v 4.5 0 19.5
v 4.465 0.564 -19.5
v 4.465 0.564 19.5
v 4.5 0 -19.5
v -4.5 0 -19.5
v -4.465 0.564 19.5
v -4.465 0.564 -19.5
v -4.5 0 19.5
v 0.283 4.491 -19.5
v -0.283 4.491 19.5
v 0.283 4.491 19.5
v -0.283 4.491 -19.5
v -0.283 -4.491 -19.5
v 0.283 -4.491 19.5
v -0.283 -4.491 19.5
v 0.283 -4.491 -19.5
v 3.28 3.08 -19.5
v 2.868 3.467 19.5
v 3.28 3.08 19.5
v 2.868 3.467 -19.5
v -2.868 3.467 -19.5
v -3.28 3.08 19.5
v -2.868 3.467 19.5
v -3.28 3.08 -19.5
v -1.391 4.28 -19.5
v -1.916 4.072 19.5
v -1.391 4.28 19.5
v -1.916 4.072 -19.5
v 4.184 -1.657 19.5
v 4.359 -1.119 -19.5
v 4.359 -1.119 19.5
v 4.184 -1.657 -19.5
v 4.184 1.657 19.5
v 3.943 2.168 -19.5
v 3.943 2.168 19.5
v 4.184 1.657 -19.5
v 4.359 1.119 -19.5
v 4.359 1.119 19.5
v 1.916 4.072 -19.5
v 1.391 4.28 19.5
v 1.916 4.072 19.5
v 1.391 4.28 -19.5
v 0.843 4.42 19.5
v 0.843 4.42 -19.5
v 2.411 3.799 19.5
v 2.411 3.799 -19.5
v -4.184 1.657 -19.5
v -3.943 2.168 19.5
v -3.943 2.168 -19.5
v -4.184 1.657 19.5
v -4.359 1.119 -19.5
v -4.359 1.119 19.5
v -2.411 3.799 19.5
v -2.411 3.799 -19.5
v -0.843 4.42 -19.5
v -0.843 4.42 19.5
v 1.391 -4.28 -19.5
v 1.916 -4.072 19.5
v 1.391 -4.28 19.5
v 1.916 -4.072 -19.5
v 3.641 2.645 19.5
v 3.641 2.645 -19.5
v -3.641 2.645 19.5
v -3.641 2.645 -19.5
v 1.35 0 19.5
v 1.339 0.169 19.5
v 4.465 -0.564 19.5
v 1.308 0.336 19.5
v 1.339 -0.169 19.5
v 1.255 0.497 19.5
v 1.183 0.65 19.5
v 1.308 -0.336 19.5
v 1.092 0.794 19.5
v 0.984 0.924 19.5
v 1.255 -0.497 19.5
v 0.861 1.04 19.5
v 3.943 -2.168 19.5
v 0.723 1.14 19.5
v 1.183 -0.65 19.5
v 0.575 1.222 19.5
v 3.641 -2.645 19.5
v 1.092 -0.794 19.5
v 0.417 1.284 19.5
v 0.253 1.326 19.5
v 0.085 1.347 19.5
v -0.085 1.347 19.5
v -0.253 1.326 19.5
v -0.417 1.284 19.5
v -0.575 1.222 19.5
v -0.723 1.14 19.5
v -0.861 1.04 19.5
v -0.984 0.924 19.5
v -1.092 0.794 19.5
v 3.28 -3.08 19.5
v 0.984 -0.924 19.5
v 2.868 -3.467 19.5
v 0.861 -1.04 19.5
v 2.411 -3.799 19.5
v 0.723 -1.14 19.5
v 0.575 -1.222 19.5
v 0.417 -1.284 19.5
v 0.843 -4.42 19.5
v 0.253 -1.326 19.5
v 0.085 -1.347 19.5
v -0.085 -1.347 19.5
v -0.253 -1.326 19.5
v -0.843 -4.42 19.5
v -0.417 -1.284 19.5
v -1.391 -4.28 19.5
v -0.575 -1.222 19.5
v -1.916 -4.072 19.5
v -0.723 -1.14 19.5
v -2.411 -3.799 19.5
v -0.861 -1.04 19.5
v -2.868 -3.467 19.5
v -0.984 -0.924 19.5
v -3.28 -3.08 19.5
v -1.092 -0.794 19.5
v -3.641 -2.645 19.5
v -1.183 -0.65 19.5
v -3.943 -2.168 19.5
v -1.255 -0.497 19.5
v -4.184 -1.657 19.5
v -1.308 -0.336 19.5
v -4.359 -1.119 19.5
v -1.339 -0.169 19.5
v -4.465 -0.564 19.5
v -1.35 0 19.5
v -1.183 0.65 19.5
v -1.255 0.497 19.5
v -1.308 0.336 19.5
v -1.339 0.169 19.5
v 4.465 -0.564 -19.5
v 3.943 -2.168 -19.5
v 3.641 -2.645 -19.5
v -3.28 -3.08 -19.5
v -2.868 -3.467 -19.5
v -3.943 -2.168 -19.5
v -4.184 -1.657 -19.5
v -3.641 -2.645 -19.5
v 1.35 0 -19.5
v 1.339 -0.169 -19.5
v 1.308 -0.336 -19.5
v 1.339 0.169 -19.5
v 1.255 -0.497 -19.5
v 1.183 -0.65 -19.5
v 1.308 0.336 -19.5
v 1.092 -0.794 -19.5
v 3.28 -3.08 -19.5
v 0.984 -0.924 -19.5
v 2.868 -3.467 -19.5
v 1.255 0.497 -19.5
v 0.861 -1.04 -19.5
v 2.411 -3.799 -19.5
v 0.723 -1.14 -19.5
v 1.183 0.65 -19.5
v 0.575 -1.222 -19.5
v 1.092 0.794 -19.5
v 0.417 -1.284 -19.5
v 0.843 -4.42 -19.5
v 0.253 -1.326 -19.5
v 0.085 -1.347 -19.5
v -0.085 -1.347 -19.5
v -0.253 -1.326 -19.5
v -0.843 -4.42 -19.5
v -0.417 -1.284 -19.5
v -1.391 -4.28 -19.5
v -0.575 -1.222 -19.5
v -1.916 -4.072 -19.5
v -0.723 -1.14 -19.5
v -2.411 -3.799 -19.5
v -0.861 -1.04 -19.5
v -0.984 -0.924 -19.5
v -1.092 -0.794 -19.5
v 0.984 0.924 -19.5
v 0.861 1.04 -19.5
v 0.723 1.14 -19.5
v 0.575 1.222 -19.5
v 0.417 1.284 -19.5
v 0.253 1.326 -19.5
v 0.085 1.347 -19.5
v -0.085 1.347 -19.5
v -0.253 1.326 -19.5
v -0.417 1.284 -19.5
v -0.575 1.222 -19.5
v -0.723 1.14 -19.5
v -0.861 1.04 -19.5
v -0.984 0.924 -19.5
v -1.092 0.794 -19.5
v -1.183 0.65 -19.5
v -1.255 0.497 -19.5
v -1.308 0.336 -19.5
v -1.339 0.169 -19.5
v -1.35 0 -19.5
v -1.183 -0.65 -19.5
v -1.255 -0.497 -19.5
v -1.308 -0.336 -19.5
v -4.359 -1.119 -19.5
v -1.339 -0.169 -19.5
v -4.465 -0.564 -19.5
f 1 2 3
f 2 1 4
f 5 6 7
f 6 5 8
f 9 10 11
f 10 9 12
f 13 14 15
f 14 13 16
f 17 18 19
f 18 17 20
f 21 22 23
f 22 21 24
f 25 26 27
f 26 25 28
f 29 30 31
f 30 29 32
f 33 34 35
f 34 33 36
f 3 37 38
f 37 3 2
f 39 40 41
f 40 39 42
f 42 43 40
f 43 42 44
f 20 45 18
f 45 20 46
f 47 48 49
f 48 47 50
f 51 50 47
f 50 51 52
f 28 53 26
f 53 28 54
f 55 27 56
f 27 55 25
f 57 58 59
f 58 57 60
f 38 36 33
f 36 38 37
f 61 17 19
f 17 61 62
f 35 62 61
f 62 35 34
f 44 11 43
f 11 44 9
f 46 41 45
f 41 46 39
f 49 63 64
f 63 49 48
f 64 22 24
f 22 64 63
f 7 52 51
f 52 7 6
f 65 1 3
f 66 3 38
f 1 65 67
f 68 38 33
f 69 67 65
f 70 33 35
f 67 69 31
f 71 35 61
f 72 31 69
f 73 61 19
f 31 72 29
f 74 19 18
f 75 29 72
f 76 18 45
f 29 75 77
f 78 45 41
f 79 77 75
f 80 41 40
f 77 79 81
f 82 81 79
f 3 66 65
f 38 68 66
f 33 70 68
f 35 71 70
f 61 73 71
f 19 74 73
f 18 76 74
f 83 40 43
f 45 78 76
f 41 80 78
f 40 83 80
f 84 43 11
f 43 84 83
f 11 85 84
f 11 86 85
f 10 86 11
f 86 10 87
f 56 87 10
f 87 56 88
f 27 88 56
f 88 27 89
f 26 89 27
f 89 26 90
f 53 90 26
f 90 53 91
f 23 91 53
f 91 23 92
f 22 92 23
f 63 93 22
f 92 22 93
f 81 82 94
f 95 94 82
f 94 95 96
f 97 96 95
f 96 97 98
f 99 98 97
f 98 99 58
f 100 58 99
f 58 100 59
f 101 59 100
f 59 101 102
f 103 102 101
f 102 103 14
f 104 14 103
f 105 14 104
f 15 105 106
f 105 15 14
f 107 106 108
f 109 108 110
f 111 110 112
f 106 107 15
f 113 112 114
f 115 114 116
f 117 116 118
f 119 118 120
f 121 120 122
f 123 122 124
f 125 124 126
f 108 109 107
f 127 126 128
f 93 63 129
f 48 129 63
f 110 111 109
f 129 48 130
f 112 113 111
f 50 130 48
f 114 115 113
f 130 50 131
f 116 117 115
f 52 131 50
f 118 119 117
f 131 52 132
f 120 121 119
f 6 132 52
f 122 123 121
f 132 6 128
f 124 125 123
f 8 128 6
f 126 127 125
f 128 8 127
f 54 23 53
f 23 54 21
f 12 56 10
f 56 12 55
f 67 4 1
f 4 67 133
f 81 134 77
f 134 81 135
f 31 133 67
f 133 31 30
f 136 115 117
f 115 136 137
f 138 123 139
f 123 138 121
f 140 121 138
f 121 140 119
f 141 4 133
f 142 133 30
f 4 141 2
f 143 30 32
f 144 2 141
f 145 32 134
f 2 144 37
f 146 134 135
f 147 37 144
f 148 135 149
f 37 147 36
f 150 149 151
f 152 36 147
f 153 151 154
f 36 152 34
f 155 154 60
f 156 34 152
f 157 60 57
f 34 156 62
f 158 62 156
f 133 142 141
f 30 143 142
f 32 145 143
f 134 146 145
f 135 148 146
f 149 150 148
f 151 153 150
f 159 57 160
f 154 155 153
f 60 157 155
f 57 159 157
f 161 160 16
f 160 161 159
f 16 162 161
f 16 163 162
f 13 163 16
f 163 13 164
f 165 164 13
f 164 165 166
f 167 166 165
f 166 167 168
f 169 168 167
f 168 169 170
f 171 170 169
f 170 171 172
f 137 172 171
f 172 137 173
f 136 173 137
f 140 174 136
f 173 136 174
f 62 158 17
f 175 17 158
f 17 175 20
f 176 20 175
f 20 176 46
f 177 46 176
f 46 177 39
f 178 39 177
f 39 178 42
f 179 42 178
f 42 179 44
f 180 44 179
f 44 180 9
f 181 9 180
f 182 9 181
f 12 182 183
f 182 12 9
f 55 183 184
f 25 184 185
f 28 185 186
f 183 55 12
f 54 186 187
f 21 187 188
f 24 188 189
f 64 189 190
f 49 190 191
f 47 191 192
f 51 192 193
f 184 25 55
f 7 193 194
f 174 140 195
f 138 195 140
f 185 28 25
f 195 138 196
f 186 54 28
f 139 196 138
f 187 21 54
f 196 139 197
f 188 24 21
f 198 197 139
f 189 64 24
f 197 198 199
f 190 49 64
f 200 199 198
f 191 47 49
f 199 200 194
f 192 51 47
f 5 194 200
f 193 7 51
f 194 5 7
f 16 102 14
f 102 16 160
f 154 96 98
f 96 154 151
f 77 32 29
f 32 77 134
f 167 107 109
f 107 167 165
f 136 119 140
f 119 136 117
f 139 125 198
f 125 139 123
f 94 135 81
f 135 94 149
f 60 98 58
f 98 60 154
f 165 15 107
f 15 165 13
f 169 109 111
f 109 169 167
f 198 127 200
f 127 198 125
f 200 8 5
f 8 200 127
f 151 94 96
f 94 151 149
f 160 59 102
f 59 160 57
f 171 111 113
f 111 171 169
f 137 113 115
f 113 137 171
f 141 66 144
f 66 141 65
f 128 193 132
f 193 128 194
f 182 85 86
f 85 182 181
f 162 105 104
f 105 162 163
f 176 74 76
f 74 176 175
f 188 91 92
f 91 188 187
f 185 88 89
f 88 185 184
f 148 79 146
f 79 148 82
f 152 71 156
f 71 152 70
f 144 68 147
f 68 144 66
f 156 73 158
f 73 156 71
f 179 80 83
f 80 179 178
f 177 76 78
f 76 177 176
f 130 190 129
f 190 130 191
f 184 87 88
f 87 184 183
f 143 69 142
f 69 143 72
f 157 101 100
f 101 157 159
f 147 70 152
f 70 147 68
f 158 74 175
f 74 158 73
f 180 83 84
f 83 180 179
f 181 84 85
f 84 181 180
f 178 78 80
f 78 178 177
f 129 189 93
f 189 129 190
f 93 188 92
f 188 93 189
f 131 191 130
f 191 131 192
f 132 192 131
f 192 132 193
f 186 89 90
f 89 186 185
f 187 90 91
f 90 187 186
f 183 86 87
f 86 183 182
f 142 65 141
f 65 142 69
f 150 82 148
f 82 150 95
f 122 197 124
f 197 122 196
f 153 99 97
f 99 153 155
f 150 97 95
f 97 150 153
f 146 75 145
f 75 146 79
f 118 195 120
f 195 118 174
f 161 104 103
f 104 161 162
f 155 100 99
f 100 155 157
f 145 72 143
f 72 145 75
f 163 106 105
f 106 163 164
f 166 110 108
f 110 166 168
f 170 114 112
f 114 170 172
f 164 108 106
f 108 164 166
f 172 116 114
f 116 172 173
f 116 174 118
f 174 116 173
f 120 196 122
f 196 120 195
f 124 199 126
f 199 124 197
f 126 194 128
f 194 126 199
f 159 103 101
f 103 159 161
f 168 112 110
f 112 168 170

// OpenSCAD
$fn = 50;


difference() {
	union() {
		translate(v = [0, 0, -19.5000000000]) {
			cylinder(h = 39, r = 4.5000000000);
		}
	}
	union() {
		translate(v = [0, 0, -100.0000000000]) {
			cylinder(h = 200, r = 1.3500000000);
		}
	}
}
